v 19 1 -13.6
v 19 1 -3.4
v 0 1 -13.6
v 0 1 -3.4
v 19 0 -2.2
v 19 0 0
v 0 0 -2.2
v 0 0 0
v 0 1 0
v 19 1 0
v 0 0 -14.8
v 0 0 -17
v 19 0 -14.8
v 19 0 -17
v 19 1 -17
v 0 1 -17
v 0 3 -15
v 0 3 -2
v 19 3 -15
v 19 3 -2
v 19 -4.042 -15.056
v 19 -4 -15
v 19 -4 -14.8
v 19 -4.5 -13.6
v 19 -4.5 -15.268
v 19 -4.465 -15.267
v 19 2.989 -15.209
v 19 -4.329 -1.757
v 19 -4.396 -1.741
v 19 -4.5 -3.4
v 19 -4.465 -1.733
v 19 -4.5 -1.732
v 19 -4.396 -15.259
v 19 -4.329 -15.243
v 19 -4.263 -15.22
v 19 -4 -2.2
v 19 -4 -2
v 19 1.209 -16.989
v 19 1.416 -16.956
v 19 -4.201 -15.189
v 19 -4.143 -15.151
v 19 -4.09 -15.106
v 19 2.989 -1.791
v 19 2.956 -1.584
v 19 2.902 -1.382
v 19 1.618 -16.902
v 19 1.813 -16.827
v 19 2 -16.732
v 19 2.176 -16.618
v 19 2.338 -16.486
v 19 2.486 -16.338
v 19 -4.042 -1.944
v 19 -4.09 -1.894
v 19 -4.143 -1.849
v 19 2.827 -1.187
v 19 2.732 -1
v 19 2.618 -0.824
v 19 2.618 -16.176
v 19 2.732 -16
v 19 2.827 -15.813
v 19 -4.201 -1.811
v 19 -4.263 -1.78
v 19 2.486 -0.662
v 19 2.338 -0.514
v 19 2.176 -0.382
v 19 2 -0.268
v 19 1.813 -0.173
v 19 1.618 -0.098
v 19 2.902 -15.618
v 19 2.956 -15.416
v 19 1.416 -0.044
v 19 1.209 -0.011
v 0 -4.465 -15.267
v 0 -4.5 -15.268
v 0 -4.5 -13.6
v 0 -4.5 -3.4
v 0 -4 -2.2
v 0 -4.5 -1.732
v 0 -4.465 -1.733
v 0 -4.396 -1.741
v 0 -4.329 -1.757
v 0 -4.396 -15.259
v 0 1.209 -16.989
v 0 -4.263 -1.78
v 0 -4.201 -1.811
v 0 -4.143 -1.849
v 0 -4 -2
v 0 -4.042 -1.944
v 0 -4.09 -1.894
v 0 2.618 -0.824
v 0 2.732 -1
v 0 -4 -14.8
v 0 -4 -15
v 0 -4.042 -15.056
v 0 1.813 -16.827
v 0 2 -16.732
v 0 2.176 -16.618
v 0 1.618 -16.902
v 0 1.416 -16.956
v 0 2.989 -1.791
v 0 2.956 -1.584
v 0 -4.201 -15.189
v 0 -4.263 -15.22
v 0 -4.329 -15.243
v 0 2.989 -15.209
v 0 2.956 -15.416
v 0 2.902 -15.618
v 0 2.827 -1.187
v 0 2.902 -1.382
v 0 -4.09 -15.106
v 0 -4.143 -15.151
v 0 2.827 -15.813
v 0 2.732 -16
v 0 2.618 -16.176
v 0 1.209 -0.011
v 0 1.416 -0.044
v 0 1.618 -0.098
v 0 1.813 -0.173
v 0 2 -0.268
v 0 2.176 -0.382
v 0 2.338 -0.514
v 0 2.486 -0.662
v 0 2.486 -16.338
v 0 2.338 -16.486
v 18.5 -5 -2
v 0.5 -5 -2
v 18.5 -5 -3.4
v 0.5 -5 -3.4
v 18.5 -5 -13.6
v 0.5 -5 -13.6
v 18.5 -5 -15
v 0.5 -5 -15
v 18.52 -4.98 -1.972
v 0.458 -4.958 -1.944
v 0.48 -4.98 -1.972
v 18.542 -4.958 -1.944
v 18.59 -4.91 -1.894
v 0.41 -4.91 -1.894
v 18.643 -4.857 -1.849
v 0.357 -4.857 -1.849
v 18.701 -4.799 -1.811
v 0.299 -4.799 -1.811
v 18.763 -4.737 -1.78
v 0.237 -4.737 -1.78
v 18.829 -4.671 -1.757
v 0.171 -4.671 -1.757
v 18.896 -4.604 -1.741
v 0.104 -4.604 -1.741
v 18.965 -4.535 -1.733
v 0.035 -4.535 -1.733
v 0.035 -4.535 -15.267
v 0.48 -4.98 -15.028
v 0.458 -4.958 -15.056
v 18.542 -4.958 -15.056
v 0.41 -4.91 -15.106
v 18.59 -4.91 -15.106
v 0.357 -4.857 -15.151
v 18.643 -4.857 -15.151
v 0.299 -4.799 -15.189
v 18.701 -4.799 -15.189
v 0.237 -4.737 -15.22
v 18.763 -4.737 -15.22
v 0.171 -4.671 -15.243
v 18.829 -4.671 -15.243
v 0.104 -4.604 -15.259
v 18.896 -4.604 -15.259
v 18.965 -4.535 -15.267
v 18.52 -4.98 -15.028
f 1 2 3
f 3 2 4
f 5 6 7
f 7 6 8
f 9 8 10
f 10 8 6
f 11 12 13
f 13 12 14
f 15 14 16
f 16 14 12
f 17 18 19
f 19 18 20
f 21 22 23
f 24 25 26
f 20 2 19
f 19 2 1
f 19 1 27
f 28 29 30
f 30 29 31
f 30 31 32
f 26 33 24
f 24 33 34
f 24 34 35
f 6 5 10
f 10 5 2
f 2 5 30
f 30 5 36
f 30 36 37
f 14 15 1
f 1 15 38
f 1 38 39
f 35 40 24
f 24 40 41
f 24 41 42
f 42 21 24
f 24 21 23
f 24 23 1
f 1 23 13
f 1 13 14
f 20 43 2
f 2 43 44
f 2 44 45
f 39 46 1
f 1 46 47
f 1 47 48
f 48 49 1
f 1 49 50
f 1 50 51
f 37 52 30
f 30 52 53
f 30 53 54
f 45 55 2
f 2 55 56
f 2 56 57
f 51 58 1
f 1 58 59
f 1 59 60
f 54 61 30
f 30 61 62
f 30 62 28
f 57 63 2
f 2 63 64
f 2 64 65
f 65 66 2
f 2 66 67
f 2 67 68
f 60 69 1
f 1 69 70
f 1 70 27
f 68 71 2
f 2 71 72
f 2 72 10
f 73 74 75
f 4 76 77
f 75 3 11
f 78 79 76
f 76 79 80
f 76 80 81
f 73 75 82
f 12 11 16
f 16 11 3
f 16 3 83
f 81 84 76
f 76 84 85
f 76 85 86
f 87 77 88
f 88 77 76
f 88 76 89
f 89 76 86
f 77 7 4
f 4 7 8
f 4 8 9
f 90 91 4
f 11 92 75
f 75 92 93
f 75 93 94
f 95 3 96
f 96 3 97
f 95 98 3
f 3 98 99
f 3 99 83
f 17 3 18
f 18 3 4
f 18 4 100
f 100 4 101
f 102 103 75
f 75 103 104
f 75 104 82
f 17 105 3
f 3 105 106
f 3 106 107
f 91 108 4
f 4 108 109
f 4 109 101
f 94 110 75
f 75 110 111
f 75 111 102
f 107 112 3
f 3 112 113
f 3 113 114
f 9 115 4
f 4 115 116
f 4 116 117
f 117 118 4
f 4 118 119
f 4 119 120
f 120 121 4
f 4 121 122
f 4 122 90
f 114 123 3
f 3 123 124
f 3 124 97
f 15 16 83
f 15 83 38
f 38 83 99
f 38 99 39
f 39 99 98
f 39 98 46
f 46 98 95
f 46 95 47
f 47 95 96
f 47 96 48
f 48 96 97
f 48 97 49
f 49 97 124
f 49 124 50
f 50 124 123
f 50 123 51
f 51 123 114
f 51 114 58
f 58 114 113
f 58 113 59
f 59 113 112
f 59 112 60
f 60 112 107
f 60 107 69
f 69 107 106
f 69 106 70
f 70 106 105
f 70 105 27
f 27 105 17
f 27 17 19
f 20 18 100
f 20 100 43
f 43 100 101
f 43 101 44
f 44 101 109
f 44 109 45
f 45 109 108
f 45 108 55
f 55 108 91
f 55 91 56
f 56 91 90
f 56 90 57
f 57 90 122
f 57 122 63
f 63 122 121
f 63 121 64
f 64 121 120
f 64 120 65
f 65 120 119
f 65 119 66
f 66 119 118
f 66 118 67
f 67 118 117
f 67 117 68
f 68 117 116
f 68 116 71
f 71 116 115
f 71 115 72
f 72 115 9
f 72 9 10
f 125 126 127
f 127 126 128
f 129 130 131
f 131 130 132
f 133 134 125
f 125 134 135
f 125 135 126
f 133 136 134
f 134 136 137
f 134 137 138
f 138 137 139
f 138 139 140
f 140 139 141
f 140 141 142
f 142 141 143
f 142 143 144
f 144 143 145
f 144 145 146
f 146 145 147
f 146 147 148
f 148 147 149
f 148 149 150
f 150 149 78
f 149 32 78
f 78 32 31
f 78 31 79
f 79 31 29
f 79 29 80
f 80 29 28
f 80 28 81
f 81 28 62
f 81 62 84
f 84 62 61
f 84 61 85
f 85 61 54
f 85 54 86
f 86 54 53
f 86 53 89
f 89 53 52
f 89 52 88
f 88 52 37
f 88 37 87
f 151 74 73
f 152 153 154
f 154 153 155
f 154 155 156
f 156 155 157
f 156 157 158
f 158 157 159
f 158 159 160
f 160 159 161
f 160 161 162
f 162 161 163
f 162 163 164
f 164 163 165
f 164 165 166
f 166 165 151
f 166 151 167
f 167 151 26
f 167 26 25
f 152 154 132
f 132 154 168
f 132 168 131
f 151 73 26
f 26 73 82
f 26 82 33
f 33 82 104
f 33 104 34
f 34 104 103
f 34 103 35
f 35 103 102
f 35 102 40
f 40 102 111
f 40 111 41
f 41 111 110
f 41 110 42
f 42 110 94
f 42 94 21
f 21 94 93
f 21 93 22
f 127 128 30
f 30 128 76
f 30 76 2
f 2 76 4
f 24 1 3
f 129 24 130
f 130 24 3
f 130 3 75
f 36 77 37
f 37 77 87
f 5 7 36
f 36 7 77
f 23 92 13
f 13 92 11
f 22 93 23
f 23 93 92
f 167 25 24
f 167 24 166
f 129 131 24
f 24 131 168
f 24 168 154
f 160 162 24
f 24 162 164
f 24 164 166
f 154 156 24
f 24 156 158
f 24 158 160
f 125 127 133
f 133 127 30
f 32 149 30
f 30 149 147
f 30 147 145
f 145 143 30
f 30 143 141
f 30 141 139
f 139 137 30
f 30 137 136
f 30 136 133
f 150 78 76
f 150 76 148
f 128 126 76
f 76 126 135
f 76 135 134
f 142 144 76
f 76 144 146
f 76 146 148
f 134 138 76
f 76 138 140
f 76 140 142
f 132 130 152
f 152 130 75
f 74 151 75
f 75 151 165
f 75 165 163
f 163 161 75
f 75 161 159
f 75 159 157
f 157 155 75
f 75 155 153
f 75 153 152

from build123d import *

# Parameters (mm, degrees)
SKETCH1_W           = 17
SKETCH1_H           = 3
BOSS_EXTRUDE1_DEPTH = 19
FILLET1_R           = 2
SKETCH2_W           = 13
SKETCH2_H           = 1
CUT_EXTRUDE1_DEPTH  = 26.670995306
SKETCH3_W           = 19
SKETCH3_H           = 0.6
BOSS_EXTRUDE2_DEPTH = 6
BOSS_EXTRUDE3_DEPTH = 19
SKETCH5_W           = 0.8
SKETCH5_H           = 6
BOSS_EXTRUDE4_DEPTH = 19
SKETCH6_W           = 0.2
SKETCH6_H           = 4
CUT_EXTRUDE11_DEPTH = 19
CHAMFER1_SIZE       = 0.5


with BuildPart() as part:
    # Sketch1 → Boss-Extrude1 (new body)
    with BuildSketch(Plane(origin=(0, 0, 0), x_dir=(0, 0, -1), z_dir=(1, 0, 0))):
        with Locations((8.5, 1.5)):
            Rectangle(SKETCH1_W, SKETCH1_H)
    extrude(amount=BOSS_EXTRUDE1_DEPTH)

    # Fillet1
    fillet1_edges = [part.edges().sort_by_distance(p)[0] for p in [
        (9.5, 3, 0),
        (9.5, 3, -17),
    ]]
    fillet(fillet1_edges, radius=FILLET1_R)

    # Sketch2 → Cut-Extrude1 (cut, through all)
    with BuildSketch(Plane(origin=(19, 0, 0), x_dir=(0, 0, -1), z_dir=(1, 0, 0))):
        with Locations((8.5, 0.5)):
            Rectangle(SKETCH2_W, SKETCH2_H)
    extrude(amount=-CUT_EXTRUDE1_DEPTH, mode=Mode.SUBTRACT)

    # Sketch3 → Boss-Extrude2 (add)
    with BuildSketch(Plane(origin=(0, 1, 0), x_dir=(-1, 0, 0), z_dir=(0, -1, 0))):
        with Locations((-9.5, 2.3)):
            Rectangle(SKETCH3_W, SKETCH3_H)
        with Locations((-9.5, 14.7)):
            Rectangle(SKETCH3_W, SKETCH3_H)
    extrude(amount=BOSS_EXTRUDE2_DEPTH)

    # Sketch4 → Boss-Extrude3 (add)
    with BuildSketch(Plane(origin=(19, 0, 0), x_dir=(0, 0, -1), z_dir=(1, 0, 0))):
        with BuildLine():
            Line((2, -5), (2, -4))
            ThreePointArc((2, -4), (1.731662479, -4.5), (2, -5))
        make_face()
        with BuildLine():
            Line((15, -5), (15, -4))
            ThreePointArc((15, -4), (15.268337521, -4.5), (15, -5))
        make_face()
    extrude(amount=-BOSS_EXTRUDE3_DEPTH)

    # Sketch5 → Boss-Extrude4 (add)
    with BuildSketch(Plane(origin=(19, 0, 0), x_dir=(0, 0, -1), z_dir=(1, 0, 0))):
        with Locations((3, -2)):
            Rectangle(SKETCH5_W, SKETCH5_H)
        with Locations((14, -2)):
            Rectangle(SKETCH5_W, SKETCH5_H)
    extrude(amount=-BOSS_EXTRUDE4_DEPTH)

    # Sketch6 → Cut-Extrude11 (cut)
    with BuildSketch(Plane(origin=(19, 0, 0), x_dir=(0, 0, -1), z_dir=(1, 0, 0))):
        with Locations((2.1, -2)):
            Rectangle(SKETCH6_W, SKETCH6_H)
        with Locations((14.9, -2)):
            Rectangle(SKETCH6_W, SKETCH6_H)
    extrude(amount=-CUT_EXTRUDE11_DEPTH, mode=Mode.SUBTRACT)

    # Chamfer1
    chamfer1_edges = [part.edges().sort_by_distance(p)[0] for p in [
        (19, -5, -2.7),
        (0, -5, -2.7),
        (0, -5, -14.3),
        (19, -5, -14.3),
    ]]
    chamfer(chamfer1_edges, length=CHAMFER1_SIZE)


solid = part.part
